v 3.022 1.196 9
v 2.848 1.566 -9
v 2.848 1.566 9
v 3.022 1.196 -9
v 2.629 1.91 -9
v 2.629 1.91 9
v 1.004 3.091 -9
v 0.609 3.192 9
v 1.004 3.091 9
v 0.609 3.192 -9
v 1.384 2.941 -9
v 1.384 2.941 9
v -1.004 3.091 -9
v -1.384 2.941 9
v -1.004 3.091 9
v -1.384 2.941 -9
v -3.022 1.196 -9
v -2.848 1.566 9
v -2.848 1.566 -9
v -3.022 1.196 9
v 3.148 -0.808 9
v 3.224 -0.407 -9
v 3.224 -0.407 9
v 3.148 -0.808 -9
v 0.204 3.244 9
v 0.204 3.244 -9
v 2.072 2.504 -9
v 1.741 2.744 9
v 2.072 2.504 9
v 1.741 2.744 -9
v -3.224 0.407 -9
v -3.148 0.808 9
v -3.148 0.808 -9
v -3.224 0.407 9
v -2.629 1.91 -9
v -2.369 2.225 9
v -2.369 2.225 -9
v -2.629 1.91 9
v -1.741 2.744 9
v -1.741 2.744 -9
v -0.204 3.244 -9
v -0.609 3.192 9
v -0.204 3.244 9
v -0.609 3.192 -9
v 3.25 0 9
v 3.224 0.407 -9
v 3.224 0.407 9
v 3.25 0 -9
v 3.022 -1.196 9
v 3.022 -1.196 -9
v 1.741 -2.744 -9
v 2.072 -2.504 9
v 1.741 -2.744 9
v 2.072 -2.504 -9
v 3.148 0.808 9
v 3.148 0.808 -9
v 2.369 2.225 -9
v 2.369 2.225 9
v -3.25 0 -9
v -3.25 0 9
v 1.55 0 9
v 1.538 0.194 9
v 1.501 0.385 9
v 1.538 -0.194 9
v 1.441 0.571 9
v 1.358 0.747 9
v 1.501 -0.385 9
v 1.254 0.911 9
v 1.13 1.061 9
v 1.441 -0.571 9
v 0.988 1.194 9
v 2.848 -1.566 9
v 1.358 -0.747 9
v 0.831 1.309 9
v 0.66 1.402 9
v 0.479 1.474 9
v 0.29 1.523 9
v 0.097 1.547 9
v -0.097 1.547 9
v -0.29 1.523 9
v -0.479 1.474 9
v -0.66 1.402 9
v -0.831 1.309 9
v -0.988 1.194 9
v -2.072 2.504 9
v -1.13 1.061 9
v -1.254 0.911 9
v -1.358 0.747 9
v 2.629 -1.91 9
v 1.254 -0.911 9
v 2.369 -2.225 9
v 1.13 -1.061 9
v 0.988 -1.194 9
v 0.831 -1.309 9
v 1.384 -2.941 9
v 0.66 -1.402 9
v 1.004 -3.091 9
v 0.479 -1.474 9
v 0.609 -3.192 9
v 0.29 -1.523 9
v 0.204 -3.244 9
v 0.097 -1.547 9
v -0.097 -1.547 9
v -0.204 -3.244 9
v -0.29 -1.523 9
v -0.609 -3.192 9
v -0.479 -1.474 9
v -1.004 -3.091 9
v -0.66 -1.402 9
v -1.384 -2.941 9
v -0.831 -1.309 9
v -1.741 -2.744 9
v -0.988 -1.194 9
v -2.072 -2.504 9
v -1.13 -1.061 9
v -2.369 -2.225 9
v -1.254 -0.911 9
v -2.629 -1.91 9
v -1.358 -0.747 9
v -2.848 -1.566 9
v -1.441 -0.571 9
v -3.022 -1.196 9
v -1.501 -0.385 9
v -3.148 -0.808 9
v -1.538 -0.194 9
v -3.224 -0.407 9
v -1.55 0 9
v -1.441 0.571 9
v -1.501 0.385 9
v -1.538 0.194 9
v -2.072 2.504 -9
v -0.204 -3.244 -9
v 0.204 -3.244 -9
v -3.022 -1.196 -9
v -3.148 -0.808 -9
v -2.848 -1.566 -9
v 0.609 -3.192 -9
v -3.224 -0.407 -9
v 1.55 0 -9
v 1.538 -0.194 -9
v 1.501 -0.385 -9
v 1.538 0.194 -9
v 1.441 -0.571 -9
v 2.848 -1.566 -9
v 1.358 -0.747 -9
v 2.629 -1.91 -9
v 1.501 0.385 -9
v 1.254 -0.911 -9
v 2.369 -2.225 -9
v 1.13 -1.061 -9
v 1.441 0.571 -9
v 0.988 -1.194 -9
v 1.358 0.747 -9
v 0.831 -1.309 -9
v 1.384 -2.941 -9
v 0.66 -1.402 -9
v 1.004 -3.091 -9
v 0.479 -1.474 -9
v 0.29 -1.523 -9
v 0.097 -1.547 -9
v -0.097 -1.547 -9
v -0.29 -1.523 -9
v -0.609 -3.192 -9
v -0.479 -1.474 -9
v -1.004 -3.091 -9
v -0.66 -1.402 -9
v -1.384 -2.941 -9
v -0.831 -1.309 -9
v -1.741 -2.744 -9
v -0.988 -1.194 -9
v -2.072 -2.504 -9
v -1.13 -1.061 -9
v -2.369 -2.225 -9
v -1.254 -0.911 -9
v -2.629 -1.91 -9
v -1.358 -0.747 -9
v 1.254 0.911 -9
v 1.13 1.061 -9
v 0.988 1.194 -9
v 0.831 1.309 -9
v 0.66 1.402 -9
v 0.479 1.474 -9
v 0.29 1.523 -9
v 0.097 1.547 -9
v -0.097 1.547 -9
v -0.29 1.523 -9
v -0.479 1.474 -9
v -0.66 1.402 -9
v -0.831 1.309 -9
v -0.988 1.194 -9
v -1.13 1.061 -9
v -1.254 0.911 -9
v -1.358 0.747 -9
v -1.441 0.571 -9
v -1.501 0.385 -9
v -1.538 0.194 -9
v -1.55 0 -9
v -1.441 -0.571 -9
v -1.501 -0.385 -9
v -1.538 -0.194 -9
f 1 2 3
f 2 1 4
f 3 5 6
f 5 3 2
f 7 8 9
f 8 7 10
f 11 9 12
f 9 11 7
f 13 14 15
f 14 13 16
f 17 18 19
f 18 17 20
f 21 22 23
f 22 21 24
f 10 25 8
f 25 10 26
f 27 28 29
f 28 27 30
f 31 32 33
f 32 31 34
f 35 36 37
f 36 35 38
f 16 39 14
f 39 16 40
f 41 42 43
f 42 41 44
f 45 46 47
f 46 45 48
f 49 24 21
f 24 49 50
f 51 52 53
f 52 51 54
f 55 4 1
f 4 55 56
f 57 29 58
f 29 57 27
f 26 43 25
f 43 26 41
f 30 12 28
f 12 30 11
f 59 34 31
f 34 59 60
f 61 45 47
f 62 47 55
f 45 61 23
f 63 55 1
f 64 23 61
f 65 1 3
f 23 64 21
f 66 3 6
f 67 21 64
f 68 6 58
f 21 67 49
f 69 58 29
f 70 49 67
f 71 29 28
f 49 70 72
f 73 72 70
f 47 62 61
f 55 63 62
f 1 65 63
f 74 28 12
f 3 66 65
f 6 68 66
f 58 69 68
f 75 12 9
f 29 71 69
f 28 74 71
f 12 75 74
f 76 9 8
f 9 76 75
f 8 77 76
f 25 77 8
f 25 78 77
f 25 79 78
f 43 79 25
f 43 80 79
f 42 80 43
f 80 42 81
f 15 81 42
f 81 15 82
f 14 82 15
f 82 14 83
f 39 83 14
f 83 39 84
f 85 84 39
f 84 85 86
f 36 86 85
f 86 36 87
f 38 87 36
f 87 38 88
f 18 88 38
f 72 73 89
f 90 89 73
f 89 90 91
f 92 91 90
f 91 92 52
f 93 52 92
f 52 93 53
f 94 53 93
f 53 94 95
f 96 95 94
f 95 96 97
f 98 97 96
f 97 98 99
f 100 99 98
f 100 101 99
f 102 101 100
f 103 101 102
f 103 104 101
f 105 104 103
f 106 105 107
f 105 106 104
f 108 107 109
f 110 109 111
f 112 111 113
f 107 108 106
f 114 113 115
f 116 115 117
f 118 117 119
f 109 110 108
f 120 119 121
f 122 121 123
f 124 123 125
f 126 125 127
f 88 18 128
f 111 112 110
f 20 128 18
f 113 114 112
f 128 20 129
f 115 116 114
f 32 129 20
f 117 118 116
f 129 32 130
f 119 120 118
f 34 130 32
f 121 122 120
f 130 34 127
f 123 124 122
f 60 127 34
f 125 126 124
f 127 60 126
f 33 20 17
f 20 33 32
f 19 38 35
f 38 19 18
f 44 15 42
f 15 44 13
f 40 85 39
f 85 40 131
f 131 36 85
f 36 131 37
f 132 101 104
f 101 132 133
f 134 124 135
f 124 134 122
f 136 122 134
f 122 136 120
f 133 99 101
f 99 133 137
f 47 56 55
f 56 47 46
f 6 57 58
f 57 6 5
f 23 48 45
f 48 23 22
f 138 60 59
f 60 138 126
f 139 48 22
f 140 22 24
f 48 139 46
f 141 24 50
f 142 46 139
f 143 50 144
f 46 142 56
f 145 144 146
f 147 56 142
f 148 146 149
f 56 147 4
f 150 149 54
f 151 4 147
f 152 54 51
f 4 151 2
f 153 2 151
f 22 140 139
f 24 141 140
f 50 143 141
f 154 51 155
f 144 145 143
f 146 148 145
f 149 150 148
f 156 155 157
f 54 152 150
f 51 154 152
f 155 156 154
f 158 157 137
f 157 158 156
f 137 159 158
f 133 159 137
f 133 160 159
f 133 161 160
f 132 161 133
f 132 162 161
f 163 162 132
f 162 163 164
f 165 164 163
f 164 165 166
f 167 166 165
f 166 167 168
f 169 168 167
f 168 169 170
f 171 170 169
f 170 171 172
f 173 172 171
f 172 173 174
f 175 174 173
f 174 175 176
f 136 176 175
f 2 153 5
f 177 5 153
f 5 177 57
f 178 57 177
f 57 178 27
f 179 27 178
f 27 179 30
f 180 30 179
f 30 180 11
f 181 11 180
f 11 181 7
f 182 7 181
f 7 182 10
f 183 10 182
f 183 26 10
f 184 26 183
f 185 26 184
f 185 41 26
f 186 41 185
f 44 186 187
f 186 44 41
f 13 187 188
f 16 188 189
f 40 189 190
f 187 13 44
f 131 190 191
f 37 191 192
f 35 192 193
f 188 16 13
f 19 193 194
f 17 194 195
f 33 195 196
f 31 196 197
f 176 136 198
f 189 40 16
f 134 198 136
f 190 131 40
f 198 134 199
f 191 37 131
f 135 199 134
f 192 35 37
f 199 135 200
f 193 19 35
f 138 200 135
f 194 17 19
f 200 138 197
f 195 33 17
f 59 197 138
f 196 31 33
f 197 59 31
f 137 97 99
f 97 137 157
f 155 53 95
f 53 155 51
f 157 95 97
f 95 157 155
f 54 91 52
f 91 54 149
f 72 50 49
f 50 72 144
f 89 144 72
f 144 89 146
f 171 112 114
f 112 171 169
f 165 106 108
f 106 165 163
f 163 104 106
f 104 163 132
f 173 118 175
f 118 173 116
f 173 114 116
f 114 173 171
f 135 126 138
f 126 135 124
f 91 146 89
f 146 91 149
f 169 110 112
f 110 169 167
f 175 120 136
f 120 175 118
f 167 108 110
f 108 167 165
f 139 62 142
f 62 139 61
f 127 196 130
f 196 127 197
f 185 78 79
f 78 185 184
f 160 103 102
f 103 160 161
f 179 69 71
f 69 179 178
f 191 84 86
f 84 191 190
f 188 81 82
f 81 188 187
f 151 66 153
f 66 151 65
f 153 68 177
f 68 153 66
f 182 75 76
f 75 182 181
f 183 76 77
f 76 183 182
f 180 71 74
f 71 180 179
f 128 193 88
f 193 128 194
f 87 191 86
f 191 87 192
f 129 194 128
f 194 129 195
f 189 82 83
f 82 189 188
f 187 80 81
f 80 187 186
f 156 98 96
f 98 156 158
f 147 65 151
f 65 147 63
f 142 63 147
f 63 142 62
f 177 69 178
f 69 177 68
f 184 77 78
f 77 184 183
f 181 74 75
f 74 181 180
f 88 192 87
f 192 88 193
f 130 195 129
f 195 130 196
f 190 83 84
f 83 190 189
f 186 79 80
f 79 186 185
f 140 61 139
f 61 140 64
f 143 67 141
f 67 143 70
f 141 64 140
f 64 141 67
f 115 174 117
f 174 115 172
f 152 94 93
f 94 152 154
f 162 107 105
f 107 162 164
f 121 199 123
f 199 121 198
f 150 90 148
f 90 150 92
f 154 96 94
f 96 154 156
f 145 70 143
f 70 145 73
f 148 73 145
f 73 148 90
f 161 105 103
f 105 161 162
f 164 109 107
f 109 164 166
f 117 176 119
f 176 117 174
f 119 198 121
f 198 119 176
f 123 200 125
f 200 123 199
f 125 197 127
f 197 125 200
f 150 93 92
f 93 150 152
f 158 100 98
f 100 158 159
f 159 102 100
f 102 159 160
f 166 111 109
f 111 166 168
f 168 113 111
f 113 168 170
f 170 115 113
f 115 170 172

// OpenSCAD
$fn = 50;


difference() {
	union() {
		translate(v = [0, 0, -9.0000000000]) {
			cylinder(h = 18, r = 3.2500000000);
		}
	}
	union() {
		translate(v = [0, 0, -100.0000000000]) {
			cylinder(h = 200, r = 1.5500000000);
		}
	}
}
